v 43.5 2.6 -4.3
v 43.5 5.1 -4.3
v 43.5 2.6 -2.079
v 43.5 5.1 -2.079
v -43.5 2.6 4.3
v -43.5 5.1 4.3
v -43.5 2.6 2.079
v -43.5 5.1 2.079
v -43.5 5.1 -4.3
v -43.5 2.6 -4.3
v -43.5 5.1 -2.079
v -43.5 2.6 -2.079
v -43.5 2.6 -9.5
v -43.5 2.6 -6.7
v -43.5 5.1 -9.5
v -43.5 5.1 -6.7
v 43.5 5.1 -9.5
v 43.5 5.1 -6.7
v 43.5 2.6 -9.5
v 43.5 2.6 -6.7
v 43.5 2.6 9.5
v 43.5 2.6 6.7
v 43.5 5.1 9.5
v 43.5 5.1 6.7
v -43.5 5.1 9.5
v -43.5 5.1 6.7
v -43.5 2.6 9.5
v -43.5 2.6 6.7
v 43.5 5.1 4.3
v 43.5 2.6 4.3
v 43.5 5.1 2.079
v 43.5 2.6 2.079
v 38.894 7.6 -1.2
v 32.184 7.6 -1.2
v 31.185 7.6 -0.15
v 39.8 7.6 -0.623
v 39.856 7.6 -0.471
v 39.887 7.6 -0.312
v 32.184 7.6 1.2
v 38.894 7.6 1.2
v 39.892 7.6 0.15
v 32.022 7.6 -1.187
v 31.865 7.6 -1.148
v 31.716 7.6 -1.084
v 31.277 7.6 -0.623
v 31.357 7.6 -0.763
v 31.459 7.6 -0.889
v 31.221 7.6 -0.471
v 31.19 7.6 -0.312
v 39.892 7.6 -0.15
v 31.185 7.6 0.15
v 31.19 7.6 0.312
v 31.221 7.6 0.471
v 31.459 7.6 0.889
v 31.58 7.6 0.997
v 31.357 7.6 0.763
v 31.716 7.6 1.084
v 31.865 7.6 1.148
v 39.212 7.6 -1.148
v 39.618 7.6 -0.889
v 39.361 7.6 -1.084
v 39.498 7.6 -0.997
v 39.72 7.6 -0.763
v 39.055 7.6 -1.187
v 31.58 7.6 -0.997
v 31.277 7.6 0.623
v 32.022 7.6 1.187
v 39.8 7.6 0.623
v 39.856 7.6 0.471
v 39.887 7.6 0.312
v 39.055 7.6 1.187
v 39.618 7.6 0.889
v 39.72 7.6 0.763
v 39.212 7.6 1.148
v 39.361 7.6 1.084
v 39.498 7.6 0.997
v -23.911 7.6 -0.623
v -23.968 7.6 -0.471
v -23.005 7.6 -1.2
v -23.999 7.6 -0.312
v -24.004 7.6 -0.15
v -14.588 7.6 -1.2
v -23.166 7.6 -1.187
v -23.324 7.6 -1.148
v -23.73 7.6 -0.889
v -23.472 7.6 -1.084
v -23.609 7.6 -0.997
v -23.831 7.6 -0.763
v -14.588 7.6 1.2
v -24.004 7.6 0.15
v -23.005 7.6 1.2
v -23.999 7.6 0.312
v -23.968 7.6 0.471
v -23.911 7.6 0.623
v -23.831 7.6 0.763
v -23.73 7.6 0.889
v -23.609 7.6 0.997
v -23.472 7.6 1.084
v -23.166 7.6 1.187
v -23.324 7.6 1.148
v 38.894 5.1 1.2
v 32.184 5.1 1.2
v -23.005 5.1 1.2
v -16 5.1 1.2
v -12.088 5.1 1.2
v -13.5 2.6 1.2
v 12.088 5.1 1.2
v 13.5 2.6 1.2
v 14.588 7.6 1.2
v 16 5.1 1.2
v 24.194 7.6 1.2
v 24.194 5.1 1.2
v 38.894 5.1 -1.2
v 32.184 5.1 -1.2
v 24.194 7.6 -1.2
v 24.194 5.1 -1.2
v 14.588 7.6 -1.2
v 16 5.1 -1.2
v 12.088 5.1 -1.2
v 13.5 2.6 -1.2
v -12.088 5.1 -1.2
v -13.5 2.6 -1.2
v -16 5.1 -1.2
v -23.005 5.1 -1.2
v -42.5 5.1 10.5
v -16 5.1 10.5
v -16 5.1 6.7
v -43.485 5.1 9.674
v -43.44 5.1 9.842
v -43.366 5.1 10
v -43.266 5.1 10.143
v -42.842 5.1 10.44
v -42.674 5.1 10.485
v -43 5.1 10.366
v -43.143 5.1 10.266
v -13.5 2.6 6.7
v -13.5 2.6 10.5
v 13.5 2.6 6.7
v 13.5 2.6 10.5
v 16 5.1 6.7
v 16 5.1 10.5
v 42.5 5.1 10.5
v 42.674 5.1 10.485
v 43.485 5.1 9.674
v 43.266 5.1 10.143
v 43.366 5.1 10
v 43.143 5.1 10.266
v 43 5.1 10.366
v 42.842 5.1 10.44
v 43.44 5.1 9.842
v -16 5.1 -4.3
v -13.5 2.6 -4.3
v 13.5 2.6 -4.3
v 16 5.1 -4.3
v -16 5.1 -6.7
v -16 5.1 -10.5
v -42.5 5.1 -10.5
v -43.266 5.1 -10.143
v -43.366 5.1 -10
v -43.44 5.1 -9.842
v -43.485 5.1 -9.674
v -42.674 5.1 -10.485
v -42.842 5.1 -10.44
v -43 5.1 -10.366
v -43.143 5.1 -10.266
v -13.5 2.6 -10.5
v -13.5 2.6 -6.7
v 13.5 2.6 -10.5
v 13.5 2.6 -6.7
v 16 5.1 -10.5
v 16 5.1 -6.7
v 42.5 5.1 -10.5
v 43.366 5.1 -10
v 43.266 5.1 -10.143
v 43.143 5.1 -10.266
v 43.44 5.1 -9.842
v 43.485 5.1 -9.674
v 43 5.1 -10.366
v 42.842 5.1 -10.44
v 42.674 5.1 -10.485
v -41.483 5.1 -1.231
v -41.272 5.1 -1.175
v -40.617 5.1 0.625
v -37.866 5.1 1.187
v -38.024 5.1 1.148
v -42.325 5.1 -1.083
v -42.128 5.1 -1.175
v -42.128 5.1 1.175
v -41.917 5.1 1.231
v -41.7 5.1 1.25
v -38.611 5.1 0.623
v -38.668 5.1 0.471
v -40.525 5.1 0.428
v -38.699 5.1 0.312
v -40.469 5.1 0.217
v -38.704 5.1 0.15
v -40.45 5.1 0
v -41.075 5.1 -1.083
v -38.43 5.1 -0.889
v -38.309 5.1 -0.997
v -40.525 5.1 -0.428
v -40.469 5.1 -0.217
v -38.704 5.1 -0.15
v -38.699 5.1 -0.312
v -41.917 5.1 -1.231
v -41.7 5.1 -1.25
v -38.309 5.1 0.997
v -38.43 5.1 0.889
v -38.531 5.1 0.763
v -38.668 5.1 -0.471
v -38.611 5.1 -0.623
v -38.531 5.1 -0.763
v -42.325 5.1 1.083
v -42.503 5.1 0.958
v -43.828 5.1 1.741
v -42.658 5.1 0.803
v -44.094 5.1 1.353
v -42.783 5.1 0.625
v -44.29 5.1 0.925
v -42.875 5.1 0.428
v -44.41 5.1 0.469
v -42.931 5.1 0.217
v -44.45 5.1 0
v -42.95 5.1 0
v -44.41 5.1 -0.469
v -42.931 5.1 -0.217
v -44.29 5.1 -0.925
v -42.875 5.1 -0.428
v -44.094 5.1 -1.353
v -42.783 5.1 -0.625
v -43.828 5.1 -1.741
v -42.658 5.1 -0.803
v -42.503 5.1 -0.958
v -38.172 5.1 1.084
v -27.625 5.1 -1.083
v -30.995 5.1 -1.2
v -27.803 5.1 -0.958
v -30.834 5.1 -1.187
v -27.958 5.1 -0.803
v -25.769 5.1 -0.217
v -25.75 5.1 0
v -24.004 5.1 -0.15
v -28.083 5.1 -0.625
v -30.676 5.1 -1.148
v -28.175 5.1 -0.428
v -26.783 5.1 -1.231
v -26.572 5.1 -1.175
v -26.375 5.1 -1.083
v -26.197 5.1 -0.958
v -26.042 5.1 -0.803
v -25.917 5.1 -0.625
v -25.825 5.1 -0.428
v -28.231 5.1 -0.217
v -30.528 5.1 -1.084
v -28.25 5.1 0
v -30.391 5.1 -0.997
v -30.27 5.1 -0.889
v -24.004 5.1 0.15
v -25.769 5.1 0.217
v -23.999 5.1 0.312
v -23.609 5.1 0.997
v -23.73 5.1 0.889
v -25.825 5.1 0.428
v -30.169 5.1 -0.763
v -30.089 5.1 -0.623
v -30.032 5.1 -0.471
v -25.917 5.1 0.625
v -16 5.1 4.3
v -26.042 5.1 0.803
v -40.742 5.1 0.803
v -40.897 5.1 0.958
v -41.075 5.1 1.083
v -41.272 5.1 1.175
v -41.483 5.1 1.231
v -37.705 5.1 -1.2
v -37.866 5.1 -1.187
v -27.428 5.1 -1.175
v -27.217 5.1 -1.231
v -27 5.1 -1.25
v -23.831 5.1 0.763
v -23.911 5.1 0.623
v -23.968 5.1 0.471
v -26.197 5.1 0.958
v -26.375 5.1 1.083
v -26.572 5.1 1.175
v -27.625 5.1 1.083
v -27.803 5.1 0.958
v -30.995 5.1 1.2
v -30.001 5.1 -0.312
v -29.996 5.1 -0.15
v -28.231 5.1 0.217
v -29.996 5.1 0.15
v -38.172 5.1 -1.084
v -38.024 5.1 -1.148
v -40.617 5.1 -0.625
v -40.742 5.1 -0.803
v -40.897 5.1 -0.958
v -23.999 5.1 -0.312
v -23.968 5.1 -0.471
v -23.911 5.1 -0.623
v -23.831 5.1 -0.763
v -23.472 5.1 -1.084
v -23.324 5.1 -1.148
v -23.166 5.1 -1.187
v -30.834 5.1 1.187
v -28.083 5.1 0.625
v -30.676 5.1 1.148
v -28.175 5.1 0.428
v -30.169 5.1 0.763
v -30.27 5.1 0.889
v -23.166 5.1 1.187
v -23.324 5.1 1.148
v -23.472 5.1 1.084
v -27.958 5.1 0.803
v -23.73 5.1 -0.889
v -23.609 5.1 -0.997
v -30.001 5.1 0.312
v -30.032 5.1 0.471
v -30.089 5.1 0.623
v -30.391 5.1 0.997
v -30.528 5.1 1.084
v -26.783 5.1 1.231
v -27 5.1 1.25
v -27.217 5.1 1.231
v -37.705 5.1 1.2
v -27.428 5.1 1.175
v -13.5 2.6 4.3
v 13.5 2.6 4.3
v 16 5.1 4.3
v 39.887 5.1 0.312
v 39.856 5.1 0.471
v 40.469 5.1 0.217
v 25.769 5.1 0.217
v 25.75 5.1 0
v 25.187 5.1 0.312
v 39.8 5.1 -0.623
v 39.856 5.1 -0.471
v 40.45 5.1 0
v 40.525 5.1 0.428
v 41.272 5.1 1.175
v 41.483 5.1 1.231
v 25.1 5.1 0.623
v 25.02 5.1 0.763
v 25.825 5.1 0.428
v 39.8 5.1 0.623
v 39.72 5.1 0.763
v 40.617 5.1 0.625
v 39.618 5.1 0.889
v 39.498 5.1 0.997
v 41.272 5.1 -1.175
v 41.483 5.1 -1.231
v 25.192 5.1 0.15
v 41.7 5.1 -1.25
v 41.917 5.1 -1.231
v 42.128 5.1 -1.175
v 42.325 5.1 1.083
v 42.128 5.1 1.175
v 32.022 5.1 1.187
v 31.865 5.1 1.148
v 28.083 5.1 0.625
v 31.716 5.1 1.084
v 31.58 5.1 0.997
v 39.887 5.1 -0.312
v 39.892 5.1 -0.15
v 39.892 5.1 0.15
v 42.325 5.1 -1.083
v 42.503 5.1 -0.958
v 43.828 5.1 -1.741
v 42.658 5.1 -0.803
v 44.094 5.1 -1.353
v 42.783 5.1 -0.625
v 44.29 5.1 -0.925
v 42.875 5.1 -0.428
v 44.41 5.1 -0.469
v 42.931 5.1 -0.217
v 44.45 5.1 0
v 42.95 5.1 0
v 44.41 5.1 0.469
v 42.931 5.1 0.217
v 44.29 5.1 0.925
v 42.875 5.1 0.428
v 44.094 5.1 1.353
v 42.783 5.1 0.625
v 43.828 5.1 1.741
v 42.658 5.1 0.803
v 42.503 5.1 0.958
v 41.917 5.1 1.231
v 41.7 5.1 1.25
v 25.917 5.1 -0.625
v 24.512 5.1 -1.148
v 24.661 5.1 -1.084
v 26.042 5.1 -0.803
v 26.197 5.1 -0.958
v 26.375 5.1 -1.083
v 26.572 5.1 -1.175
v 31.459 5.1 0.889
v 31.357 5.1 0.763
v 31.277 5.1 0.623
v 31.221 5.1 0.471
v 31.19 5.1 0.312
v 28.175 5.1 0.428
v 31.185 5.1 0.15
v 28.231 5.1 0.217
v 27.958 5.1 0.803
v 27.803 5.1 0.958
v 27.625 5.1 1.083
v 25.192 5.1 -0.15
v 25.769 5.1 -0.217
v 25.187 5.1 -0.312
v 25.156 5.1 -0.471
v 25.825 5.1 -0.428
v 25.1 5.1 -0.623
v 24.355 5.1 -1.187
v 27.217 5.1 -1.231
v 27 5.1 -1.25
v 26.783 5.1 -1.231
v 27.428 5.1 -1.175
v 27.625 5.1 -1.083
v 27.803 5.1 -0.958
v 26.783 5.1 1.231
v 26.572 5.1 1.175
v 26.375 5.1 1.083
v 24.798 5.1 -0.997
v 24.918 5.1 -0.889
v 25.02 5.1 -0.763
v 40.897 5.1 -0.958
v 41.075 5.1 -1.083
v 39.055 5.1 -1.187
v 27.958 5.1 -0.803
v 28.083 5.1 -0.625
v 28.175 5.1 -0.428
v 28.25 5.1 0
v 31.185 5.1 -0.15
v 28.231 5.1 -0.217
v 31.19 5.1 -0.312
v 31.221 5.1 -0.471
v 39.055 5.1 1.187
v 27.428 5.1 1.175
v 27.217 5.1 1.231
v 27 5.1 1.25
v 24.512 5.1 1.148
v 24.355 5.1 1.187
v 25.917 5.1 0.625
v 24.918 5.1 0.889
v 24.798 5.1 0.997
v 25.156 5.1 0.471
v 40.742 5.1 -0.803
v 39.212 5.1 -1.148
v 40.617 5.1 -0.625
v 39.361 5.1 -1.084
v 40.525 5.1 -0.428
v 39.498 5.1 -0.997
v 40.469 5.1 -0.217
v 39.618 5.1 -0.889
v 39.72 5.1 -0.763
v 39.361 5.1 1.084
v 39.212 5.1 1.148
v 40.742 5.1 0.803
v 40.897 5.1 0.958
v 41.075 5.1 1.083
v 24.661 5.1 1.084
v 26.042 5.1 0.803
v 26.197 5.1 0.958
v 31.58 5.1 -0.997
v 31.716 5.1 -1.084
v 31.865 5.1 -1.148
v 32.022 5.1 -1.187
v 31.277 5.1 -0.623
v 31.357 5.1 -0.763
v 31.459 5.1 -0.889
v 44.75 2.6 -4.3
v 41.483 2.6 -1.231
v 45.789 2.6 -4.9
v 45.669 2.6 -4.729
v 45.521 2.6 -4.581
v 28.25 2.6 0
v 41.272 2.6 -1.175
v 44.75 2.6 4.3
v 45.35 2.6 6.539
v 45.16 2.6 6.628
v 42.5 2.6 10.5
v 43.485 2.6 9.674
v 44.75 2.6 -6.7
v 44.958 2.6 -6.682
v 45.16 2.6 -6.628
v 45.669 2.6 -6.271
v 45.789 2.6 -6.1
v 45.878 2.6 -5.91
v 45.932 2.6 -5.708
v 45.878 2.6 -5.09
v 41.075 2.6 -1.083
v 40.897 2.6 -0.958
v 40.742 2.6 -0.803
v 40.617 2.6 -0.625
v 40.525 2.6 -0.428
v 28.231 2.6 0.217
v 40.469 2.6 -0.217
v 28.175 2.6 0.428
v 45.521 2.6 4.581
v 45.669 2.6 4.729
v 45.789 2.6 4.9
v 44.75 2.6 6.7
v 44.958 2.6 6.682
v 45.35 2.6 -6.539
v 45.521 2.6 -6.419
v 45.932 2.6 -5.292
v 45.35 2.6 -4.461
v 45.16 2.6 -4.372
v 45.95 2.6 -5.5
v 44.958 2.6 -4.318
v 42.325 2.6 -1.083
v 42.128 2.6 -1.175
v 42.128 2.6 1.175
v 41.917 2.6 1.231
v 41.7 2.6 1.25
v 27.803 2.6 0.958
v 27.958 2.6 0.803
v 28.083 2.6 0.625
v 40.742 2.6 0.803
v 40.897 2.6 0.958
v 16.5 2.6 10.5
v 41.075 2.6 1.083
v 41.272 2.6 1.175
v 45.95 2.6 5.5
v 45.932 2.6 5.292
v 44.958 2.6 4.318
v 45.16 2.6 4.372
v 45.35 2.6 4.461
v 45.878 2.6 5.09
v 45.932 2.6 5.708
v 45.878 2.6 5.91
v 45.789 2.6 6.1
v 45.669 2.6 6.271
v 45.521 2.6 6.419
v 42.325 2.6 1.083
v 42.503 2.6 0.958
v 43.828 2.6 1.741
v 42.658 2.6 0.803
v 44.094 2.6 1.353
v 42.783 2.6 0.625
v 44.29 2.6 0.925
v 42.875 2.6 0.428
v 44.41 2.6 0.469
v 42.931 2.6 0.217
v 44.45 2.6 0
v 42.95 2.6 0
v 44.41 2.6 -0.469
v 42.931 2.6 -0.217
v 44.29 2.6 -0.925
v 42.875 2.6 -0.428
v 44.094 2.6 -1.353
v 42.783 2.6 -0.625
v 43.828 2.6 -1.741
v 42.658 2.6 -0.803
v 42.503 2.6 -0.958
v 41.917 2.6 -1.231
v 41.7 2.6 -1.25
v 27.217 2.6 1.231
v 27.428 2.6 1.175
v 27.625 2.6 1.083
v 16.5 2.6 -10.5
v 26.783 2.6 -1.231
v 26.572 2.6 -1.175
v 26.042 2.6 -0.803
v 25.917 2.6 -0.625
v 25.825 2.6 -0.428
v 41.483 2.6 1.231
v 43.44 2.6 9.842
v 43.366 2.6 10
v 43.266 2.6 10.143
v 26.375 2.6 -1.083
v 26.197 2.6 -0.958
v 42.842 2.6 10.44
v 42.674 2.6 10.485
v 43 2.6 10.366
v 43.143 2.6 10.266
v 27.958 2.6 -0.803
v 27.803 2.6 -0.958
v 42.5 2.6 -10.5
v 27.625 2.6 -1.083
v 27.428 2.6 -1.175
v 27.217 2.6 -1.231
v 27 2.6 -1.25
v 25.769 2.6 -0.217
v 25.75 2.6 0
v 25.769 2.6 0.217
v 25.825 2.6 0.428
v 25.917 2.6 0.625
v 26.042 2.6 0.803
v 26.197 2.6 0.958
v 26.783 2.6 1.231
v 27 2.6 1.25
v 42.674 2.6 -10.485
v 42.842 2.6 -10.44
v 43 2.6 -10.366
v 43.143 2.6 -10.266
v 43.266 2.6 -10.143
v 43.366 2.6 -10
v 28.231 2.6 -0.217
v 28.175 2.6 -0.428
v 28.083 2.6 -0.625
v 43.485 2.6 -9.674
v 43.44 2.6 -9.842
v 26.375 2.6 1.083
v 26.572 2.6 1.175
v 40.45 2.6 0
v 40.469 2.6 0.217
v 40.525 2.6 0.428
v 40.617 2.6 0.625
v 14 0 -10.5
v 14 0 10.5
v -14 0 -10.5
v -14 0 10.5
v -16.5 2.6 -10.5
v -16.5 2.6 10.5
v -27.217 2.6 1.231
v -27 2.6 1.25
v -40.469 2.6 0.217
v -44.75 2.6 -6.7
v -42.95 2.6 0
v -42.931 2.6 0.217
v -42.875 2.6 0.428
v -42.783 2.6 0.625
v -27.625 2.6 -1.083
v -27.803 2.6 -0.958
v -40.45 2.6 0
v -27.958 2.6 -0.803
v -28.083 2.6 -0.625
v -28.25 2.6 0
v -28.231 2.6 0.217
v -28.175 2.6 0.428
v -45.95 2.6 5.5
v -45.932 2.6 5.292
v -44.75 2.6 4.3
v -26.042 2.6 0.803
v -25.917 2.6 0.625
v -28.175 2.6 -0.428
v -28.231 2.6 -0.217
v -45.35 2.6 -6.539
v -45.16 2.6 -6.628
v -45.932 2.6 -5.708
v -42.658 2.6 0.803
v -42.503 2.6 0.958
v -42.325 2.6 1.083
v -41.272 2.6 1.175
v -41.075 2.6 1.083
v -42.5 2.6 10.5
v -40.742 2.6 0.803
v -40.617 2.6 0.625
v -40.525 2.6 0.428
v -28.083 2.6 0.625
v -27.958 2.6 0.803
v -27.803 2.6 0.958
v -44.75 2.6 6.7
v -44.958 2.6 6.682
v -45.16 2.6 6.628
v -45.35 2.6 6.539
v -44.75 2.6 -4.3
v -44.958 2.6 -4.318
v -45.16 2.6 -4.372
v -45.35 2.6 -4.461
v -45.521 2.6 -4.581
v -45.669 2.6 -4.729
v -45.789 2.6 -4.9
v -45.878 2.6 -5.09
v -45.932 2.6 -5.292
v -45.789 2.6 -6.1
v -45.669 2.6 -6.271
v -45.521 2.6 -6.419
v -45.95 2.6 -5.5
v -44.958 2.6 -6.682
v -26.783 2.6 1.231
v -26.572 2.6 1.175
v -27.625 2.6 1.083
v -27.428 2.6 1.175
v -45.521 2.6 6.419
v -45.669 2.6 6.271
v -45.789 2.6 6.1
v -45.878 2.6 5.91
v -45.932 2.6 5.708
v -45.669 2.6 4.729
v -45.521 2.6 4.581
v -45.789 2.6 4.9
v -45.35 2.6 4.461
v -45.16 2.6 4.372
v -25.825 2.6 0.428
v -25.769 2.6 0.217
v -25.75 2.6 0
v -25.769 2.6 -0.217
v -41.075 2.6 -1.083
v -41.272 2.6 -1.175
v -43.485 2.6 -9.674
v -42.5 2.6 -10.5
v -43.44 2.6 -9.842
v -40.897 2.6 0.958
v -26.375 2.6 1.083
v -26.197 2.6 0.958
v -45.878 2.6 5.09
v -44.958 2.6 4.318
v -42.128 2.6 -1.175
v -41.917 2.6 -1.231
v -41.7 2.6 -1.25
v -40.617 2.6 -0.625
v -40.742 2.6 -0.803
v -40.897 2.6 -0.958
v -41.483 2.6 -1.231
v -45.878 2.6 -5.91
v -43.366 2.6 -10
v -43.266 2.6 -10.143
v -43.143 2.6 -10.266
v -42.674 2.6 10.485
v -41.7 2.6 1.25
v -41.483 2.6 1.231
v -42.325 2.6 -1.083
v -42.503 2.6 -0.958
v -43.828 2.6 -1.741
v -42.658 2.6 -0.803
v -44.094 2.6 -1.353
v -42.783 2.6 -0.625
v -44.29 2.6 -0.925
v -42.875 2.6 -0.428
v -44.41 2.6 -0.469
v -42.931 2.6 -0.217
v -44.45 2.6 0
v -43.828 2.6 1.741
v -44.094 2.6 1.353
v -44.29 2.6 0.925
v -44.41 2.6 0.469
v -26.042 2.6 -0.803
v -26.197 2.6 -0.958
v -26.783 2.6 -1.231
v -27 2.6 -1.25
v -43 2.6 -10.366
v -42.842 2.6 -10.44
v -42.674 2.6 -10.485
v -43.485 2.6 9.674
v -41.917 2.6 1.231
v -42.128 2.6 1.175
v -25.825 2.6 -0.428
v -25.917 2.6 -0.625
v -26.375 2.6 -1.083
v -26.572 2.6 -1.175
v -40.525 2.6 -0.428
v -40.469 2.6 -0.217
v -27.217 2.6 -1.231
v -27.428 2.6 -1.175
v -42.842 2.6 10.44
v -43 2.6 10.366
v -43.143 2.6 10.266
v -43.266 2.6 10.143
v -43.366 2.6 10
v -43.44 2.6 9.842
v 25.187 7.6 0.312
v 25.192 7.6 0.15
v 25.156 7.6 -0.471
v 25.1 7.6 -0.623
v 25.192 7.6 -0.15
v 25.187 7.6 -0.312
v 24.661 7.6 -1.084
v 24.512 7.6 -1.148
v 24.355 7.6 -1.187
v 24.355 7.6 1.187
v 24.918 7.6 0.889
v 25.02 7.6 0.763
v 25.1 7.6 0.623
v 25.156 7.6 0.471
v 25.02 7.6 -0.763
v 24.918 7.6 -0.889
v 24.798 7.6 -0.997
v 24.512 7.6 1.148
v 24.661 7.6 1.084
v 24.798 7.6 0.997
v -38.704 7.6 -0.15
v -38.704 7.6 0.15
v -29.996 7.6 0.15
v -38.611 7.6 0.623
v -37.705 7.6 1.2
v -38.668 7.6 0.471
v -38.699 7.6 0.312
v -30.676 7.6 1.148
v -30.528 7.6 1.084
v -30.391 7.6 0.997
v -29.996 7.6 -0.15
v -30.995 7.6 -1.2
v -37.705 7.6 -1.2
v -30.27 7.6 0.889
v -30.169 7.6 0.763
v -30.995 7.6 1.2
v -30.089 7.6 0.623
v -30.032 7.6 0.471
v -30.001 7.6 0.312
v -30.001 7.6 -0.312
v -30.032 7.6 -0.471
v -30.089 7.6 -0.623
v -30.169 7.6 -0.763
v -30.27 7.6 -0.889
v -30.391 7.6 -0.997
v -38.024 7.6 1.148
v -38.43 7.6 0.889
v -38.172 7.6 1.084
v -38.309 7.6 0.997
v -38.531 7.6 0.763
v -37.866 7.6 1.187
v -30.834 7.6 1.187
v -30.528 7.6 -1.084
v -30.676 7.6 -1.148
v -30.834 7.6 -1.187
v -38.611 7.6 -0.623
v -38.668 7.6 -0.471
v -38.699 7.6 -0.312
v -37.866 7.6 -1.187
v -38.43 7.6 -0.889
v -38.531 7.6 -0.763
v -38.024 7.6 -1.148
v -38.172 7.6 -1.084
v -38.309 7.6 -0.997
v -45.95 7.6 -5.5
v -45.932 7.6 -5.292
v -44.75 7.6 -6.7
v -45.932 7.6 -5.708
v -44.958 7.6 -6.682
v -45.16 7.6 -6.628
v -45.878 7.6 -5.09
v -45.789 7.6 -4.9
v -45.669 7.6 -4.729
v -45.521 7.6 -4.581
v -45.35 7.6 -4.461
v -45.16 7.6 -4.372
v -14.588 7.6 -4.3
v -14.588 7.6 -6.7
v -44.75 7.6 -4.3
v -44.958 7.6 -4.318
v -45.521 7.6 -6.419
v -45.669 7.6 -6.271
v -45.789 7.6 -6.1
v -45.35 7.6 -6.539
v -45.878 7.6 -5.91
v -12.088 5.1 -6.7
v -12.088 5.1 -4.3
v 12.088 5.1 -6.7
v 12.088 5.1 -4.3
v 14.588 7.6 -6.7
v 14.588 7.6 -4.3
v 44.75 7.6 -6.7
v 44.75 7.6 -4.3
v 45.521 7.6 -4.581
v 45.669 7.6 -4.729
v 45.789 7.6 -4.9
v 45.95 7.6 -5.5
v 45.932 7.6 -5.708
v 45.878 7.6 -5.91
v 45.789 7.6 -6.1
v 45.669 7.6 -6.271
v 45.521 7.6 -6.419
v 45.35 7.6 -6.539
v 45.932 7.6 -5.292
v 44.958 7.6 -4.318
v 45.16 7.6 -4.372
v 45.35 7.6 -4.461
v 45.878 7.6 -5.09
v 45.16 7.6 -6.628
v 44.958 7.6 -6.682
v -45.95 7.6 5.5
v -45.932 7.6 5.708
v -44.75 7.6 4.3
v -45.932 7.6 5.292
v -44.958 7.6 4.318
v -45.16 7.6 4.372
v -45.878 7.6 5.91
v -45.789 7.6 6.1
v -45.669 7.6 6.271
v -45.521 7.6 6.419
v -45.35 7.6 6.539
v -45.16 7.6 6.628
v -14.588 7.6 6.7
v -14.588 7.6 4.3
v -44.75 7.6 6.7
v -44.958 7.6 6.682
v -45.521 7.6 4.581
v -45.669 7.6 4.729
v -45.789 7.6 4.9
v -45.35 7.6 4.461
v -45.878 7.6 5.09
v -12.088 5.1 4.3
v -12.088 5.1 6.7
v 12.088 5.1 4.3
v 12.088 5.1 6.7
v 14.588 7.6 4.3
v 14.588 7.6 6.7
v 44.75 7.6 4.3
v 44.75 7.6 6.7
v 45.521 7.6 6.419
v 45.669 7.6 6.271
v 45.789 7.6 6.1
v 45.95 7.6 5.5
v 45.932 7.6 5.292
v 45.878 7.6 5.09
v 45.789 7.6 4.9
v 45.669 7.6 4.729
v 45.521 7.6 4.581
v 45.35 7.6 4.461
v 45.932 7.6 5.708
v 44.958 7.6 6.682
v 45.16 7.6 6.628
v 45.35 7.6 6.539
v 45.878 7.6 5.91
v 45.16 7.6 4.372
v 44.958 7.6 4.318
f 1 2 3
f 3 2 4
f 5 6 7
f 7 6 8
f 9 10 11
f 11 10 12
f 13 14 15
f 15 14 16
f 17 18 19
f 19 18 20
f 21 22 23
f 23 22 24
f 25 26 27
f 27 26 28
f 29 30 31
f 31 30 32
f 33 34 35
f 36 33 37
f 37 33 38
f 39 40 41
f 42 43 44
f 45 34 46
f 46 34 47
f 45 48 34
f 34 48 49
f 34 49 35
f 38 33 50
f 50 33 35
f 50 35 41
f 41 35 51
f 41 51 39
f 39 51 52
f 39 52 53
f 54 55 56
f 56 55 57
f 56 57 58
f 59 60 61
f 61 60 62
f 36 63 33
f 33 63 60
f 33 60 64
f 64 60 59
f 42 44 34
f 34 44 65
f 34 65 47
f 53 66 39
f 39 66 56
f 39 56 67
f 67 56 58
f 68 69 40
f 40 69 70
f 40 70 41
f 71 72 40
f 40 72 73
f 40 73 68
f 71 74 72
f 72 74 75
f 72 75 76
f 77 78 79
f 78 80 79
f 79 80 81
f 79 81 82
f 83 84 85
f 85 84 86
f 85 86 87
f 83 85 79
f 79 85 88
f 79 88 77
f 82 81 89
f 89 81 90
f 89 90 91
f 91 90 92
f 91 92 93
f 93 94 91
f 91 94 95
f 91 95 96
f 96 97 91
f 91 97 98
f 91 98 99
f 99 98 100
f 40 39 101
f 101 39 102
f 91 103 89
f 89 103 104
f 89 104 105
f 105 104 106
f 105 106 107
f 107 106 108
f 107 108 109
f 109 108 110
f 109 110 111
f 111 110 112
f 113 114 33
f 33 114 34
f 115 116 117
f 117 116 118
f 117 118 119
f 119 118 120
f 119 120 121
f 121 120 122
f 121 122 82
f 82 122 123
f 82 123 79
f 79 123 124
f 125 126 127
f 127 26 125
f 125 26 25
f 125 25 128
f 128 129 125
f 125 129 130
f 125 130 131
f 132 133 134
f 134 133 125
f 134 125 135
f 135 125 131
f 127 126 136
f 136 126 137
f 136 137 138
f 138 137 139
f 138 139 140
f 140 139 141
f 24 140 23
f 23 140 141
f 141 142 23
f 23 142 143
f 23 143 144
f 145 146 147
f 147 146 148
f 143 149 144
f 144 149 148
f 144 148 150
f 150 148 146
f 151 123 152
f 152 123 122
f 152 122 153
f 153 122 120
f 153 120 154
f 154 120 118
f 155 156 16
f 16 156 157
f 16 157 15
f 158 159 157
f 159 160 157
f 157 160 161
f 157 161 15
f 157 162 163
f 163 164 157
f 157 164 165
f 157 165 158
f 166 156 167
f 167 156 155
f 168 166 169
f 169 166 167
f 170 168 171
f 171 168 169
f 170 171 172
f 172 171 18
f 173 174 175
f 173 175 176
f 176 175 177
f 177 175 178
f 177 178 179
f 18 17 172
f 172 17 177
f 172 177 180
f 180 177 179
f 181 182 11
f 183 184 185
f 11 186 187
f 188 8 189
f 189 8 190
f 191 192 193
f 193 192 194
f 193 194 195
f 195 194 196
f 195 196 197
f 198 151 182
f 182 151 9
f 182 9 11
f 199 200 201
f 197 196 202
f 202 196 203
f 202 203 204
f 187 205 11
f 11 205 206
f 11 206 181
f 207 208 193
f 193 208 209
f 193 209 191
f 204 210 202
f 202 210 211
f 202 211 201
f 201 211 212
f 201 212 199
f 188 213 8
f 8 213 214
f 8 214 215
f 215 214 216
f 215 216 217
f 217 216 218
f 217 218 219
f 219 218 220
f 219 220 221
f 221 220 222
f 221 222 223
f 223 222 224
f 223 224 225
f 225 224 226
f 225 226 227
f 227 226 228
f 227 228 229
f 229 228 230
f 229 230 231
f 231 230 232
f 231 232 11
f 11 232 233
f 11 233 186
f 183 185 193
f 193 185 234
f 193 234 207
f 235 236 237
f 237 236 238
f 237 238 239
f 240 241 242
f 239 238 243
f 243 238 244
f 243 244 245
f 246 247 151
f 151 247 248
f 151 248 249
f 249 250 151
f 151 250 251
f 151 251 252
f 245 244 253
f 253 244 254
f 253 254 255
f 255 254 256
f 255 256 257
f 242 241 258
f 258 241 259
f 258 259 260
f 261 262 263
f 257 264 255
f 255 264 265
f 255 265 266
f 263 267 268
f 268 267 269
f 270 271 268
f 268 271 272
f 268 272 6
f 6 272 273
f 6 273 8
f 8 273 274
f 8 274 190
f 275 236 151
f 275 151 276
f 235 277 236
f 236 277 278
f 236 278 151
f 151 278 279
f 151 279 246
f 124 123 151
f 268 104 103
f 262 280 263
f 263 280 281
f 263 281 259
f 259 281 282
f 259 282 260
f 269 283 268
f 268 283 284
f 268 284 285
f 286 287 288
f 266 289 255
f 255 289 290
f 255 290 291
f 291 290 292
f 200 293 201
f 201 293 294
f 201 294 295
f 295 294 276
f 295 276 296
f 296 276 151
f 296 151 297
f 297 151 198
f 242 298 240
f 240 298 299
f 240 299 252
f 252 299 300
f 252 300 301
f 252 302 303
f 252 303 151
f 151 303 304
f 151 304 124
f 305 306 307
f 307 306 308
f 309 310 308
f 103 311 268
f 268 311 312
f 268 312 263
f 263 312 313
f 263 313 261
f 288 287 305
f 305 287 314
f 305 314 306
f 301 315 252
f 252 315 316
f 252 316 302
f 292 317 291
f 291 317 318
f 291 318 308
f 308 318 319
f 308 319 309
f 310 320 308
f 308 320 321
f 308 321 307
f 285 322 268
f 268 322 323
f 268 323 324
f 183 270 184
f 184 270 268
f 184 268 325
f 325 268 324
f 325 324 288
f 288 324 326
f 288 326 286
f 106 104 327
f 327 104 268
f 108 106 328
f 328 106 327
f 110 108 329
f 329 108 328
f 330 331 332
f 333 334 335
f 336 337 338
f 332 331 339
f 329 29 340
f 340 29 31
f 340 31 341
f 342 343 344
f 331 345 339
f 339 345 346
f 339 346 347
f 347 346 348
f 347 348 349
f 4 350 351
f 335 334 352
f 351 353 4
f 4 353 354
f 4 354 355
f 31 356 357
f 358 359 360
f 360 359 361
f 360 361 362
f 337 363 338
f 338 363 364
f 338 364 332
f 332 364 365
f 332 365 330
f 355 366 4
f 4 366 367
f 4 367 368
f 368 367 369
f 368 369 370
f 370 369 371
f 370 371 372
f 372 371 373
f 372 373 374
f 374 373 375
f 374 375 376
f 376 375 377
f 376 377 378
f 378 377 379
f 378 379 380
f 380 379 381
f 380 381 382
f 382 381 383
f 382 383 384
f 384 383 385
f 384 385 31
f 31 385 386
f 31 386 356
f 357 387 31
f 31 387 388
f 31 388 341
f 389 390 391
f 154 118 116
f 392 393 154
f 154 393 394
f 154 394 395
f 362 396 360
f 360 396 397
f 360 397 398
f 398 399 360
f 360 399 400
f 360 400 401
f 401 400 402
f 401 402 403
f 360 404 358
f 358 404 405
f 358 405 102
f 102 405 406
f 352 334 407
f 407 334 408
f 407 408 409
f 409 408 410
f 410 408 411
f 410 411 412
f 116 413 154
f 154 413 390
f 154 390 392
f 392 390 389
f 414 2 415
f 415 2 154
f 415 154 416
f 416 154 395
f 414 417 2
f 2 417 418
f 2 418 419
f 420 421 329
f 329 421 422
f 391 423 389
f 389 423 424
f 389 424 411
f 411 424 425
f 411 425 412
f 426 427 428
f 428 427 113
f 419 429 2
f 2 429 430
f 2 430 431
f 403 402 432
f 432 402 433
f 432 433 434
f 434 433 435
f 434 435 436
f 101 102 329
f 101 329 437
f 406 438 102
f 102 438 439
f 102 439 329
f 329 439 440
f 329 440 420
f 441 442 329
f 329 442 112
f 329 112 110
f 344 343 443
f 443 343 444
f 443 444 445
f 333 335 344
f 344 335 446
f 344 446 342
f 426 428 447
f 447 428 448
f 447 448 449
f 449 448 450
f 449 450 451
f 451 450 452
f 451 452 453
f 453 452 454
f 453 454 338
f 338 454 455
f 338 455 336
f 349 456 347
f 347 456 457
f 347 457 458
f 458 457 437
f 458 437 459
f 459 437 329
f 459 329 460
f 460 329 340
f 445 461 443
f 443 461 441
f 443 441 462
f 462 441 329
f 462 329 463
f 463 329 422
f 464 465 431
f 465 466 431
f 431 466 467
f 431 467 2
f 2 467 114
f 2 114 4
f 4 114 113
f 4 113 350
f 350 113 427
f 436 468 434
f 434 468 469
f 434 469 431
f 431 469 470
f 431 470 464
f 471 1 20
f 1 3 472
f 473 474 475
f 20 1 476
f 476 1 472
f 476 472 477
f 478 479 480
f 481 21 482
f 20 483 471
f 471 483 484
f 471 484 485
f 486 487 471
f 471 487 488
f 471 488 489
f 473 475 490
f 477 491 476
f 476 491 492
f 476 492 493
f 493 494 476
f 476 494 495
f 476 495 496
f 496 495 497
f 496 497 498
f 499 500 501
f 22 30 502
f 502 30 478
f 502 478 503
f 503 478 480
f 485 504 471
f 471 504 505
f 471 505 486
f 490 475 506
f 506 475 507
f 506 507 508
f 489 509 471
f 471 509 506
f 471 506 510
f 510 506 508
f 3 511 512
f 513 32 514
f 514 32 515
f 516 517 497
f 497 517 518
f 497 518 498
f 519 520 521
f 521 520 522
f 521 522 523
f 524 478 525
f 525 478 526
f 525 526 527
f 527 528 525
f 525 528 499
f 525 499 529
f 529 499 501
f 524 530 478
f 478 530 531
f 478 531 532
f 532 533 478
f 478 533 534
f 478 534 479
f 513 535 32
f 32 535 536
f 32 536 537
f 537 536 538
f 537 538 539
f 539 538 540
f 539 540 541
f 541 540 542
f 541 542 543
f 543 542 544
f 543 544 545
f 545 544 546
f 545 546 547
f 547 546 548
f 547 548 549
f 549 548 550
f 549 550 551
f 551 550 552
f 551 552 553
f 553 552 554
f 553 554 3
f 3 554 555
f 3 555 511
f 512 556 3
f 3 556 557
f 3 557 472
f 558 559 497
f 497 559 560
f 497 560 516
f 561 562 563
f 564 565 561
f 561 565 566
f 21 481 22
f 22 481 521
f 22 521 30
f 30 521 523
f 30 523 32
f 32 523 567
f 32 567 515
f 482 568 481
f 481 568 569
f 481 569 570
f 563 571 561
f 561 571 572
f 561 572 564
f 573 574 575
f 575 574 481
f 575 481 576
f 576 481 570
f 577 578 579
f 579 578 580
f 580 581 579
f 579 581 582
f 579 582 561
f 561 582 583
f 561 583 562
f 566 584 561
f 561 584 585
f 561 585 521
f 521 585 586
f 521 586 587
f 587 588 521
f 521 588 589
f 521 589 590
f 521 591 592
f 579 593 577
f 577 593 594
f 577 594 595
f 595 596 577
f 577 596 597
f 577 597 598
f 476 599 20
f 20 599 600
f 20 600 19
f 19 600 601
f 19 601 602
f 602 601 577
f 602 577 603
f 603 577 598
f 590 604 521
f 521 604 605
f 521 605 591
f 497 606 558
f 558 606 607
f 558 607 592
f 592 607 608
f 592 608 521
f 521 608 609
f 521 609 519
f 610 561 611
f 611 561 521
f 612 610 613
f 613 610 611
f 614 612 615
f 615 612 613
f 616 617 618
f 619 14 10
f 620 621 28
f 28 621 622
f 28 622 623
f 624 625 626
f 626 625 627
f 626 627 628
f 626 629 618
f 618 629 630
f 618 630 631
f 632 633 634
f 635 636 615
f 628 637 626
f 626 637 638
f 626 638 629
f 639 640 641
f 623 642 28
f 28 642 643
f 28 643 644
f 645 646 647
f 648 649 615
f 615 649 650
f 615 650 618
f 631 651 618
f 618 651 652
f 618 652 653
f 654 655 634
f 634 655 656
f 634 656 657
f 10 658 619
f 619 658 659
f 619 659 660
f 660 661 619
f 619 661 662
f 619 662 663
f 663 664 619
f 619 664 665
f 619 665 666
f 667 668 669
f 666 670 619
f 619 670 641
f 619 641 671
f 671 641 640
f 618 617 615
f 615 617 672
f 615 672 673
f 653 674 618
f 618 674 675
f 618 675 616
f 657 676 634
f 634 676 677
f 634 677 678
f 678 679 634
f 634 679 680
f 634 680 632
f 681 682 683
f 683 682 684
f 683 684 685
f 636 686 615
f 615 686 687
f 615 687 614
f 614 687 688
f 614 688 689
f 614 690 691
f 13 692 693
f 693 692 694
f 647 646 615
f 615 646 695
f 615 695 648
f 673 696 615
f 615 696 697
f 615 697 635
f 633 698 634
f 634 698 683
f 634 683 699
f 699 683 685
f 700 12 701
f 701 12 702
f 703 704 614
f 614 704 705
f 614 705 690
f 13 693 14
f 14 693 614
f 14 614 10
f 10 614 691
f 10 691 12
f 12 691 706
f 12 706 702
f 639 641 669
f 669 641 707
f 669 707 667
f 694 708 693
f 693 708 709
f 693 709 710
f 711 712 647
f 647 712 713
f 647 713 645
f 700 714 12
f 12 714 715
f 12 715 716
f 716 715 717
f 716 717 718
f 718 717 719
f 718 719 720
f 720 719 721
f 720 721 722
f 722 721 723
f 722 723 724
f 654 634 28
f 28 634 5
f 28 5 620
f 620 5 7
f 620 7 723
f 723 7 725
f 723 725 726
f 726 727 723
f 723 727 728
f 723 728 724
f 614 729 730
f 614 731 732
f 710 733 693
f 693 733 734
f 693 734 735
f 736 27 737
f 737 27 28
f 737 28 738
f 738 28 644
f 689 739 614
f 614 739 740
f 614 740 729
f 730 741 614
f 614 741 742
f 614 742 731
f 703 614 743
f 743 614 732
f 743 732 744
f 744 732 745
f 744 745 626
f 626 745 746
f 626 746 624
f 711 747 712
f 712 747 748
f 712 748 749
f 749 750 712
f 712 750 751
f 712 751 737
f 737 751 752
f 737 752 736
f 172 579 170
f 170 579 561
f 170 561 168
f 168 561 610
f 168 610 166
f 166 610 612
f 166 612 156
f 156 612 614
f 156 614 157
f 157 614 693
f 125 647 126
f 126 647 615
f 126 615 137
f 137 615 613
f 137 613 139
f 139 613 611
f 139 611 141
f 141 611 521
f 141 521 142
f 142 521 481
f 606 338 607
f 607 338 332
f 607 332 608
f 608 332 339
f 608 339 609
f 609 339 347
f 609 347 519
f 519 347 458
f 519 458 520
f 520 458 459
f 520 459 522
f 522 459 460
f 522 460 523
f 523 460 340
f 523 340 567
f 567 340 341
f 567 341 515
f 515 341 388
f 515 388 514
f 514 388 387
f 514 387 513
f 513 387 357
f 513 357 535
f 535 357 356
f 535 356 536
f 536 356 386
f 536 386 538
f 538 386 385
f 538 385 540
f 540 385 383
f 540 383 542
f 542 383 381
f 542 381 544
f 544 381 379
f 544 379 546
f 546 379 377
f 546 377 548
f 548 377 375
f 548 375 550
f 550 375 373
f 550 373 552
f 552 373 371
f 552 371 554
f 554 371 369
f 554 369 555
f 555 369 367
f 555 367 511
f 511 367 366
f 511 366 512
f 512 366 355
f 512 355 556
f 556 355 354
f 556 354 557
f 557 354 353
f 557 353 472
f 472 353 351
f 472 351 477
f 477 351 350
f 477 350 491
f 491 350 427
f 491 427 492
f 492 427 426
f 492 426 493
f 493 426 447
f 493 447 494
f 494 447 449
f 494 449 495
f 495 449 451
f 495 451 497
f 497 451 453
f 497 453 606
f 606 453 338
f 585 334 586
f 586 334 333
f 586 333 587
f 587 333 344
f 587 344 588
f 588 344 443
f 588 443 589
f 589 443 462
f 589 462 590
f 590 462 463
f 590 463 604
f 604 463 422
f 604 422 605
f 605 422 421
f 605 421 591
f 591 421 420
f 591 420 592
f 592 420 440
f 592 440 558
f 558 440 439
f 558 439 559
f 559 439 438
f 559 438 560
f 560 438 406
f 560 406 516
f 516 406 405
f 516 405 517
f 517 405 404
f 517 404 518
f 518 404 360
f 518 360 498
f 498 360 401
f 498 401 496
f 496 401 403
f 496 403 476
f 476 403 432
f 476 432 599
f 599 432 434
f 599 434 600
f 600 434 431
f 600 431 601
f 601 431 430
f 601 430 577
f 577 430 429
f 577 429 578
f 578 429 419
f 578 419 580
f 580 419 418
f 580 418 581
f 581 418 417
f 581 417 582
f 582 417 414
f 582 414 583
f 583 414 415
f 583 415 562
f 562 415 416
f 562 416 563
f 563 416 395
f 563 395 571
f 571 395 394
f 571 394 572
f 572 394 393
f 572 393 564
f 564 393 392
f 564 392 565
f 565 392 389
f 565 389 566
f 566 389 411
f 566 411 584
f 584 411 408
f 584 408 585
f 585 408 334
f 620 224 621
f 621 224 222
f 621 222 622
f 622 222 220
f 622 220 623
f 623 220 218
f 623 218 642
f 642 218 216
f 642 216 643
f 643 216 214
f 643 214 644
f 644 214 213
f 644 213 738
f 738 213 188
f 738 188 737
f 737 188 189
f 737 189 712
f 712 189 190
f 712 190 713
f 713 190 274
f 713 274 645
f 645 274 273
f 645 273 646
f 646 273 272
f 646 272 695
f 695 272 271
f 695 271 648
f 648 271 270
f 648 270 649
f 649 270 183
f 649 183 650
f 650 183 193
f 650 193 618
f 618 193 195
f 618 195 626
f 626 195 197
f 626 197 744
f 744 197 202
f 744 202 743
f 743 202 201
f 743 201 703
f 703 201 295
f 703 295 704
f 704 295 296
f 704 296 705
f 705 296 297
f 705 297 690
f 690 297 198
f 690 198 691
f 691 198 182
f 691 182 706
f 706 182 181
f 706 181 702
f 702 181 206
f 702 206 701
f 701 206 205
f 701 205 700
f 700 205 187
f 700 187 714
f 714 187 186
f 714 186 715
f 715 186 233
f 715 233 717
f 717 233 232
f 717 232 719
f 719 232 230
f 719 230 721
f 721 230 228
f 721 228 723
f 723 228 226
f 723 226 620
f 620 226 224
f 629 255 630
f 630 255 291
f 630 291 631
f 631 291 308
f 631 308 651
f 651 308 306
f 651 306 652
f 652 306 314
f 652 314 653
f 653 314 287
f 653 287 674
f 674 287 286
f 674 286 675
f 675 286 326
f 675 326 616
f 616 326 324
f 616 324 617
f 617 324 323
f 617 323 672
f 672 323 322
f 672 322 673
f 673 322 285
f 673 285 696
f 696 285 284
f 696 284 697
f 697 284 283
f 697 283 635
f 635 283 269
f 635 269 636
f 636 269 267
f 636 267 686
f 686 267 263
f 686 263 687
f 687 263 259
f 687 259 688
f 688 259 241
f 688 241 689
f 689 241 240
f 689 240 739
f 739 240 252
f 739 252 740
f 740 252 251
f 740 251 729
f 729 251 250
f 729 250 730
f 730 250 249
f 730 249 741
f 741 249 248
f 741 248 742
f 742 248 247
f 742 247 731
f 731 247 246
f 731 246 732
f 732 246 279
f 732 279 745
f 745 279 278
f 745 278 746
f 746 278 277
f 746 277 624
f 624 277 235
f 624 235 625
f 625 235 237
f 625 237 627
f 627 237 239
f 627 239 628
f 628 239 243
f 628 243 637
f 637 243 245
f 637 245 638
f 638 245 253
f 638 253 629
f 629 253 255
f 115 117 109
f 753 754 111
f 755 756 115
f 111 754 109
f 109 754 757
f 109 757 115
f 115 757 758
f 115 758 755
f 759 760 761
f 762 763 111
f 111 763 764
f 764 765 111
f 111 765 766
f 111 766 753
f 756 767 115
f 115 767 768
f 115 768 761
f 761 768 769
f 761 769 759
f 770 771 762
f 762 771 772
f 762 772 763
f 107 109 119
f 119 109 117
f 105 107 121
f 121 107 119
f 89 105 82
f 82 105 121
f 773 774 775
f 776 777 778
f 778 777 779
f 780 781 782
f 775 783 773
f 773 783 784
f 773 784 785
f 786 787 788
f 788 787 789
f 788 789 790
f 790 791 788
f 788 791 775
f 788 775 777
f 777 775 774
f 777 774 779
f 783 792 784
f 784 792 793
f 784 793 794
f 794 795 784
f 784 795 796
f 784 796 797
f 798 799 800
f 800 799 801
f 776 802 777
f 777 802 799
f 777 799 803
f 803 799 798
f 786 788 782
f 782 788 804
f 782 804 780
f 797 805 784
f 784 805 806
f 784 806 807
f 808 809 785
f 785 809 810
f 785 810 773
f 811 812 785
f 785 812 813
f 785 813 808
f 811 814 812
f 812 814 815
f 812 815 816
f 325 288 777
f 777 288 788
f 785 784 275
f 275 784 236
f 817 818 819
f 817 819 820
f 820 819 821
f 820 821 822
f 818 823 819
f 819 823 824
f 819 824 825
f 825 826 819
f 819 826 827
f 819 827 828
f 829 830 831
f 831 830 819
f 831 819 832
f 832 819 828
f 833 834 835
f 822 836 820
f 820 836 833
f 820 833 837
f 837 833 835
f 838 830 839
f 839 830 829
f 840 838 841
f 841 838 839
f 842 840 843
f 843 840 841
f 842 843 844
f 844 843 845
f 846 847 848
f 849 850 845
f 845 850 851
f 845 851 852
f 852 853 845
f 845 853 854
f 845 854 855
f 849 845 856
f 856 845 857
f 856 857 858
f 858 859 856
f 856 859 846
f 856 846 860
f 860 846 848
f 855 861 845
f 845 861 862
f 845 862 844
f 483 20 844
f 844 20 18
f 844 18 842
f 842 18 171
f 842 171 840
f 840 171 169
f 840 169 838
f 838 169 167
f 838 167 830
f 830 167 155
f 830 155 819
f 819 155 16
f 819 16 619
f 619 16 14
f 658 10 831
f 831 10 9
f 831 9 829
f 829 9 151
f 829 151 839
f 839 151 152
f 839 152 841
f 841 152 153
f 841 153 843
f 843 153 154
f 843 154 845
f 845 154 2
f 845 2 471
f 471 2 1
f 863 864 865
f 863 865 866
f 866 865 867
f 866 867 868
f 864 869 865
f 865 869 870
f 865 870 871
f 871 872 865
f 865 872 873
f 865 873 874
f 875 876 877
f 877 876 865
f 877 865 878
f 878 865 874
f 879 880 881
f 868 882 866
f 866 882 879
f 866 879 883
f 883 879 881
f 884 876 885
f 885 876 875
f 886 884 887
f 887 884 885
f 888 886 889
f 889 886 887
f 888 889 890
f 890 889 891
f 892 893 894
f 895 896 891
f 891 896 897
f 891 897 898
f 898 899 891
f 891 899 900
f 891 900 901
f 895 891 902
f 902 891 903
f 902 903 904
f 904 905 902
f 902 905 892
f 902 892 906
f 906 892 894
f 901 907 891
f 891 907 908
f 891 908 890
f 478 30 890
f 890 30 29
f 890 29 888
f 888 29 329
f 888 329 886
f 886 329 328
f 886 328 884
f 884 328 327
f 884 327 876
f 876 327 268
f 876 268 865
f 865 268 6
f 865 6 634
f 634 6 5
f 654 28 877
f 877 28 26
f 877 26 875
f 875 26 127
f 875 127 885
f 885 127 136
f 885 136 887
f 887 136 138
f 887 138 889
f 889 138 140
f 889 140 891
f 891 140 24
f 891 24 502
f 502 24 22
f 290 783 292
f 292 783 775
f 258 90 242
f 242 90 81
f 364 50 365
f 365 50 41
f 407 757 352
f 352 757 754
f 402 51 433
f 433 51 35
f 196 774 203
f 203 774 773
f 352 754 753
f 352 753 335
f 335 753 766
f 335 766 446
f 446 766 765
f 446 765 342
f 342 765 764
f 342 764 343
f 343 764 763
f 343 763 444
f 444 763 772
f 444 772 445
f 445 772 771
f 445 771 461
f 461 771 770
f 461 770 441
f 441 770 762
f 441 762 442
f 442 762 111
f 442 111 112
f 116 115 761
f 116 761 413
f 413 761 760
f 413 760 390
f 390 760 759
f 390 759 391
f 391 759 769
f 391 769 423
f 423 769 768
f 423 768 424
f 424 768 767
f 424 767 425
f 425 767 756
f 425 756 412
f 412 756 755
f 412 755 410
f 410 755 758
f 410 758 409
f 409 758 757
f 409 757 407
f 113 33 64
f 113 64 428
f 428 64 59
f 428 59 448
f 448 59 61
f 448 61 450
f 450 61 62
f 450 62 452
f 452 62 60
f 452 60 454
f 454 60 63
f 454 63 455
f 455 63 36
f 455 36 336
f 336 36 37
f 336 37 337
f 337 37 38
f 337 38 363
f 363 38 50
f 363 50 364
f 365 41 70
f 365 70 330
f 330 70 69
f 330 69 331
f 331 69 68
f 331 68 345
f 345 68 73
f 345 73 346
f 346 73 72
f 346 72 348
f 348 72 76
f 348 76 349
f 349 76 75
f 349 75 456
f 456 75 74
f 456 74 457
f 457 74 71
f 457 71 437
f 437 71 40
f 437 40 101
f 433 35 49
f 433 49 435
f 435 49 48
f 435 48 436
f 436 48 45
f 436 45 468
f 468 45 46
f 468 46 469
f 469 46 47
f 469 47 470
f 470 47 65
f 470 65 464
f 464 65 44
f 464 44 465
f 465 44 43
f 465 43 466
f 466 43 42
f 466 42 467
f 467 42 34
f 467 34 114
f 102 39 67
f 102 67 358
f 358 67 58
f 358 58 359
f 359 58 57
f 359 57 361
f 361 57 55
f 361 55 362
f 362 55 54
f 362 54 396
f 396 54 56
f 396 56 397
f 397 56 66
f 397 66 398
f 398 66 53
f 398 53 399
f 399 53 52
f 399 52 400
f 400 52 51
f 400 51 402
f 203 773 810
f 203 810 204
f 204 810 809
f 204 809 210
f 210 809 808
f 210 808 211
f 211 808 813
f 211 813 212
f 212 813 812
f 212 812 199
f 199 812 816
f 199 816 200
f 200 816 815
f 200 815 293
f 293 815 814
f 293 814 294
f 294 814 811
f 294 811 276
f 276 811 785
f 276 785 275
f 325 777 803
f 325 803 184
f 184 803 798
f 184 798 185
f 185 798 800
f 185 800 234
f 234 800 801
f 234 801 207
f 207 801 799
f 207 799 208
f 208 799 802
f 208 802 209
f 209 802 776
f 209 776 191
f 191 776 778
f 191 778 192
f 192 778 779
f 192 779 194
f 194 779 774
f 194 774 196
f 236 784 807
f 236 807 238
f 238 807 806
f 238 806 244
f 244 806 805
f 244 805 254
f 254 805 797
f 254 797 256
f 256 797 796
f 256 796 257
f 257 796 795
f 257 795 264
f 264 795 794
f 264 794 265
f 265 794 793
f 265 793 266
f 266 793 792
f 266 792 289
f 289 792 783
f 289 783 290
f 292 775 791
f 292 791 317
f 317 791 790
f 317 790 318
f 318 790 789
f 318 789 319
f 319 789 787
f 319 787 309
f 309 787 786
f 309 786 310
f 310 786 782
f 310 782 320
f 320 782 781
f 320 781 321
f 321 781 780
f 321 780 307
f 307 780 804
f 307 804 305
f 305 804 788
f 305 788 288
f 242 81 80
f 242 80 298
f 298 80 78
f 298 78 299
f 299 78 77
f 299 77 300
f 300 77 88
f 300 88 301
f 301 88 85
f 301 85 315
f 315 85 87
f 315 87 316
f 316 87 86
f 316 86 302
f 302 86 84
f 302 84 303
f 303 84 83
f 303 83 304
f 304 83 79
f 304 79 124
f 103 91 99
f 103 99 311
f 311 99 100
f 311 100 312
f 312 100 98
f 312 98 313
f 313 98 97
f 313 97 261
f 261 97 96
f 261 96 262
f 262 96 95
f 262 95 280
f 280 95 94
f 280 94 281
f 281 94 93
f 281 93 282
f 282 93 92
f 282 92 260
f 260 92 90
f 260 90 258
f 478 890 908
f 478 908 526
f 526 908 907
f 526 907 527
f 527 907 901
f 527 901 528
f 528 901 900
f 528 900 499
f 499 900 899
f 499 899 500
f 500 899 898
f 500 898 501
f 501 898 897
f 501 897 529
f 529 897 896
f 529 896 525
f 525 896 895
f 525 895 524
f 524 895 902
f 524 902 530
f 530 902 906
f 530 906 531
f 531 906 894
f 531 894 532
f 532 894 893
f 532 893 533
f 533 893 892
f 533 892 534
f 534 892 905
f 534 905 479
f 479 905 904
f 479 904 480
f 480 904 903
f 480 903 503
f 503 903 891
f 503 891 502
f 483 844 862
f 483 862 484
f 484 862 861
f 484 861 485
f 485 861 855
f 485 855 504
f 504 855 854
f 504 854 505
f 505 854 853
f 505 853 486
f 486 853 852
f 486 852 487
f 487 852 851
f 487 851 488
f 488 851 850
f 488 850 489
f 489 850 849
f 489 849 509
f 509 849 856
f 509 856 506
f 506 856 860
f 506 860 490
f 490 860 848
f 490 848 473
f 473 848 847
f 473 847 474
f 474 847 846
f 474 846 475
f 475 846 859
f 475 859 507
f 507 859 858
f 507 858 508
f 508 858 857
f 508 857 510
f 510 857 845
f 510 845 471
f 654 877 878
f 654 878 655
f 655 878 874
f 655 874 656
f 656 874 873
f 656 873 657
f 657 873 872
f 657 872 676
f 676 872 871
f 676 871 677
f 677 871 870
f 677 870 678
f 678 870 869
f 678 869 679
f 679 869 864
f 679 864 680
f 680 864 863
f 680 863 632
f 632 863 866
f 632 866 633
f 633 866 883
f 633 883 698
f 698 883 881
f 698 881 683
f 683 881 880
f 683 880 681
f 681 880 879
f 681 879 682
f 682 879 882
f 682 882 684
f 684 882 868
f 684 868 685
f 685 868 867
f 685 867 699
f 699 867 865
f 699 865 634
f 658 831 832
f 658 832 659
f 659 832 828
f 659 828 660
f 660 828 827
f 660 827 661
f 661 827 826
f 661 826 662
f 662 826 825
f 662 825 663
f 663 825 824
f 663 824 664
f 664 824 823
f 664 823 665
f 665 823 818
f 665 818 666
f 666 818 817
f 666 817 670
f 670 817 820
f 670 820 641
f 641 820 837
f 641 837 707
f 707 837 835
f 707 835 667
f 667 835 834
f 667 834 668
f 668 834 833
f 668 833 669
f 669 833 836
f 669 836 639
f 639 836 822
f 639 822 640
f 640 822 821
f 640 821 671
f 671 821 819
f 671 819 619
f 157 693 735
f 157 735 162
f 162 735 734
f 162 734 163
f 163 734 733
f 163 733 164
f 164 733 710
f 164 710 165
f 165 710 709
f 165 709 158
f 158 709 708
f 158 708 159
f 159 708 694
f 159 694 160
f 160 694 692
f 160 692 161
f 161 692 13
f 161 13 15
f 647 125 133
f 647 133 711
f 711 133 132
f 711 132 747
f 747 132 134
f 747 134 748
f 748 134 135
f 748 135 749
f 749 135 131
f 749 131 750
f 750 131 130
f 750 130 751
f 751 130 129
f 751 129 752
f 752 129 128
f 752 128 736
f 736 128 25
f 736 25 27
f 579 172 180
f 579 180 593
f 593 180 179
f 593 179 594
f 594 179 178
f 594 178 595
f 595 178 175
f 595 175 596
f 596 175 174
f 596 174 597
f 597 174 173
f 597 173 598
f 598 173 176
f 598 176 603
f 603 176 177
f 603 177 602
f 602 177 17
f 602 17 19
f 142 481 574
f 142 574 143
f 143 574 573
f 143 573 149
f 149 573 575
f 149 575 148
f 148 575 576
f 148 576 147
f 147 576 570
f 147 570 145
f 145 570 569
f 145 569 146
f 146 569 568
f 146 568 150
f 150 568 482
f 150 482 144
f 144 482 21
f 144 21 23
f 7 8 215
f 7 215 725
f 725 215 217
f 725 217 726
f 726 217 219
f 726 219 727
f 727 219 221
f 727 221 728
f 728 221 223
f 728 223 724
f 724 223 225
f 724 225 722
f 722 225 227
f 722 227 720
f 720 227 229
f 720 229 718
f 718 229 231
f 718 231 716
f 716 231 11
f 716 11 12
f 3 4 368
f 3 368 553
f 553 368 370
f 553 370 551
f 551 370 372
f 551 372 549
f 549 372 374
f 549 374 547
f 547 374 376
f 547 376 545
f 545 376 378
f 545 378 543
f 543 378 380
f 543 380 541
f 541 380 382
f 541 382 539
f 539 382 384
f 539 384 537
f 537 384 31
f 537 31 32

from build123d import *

# Parameters (mm, degrees)
BOSS_EXTRUDE1_DEPTH  = 10.5
SKETCH2_R            = 1.25
CUT_EXTRUDE1_DEPTH   = 46.038983115
BOSS_EXTRUDE19_DEPTH = 1.2
LPATTERN1_START      = -6.7
LPATTERN1_DEPTH      = 2.4
LPATTERN1_START_2    = 4.3
LPATTERN1_2_DEPTH    = 2.4
SKETCH5_R            = 3
CUT_EXTRUDE2_DEPTH   = 2.5
FILLET1_R            = 1
BOSS_EXTRUDE20_DEPTH = 5
FILLET2_R            = 1
BOSS_EXTRUDE21_DEPTH = 2.5


# Read off the part's stored shape, not the designer's step: LPattern1
with BuildPart() as part:
    # Sketch1 → Boss-Extrude1 (new, symmetric)
    with BuildSketch(Plane.XY):
        Polygon((-43.5, 2.6), (-16.5, 2.6), (-14, 0), (14, 0), (16.5, 2.6), (43.5, 2.6), (43.5, 5.1), (16, 5.1), (13.5, 2.6), (-13.5, 2.6), (-16, 5.1), (-43.5, 5.1), align=None)
    extrude(amount=BOSS_EXTRUDE1_DEPTH, both=True)

    # Sketch2 → Cut-Extrude1 (cut, through all)
    with BuildSketch(Plane(origin=(0, 5.1, 0), x_dir=(1, 0, 0), z_dir=(0, 1, 0))):
        with Locations(Location((27, 0, 0), (0, 0, 180))):
            Circle(SKETCH2_R)
        with Locations(Location((41.7, 0, 0), (0, 0, 180))):
            Circle(SKETCH2_R)
    cut_extrude1 = extrude(amount=-CUT_EXTRUDE1_DEPTH, mode=Mode.SUBTRACT)

    # Mirror1: Cut-Extrude1 across plane
    add(cut_extrude1.mirror(Plane(origin=(0, 0, 0), x_dir=(0, 0, 1), z_dir=(1, 0, 0))), mode=Mode.SUBTRACT)

    # Sketch4 → Boss-Extrude19 (add, symmetric)
    with BuildSketch(Plane.XY):
        Polygon((-43.5, 7.6), (-14.587766262, 7.6), (-12.087766262, 5.1), (12.087766262, 5.1), (14.587766262, 7.6), (43.5, 7.6), (43.5, 5.1), (16, 5.1), (13.5, 2.6), (-13.5, 2.6), (-16, 5.1), (-43.5, 5.1), align=None)
    boss_extrude19 = extrude(amount=BOSS_EXTRUDE19_DEPTH, both=True)

    # Mirror2: Boss-Extrude19 across plane
    add(boss_extrude19.mirror(Plane.XY))

    # LPattern1 outline → LPattern1 (add)
    with BuildSketch(Plane.XY.offset(LPATTERN1_START)):
        Polygon((14.587766262, 7.6), (12.087766262, 5.1), (-12.087766262, 5.1), (-14.587766262, 7.6), (-43.5, 7.6), (-43.5, 5.1), (-16, 5.1), (-13.5, 2.6), (13.5, 2.6), (16, 5.1), (43.5, 5.1), (43.5, 7.6), align=None)
    extrude(amount=LPATTERN1_DEPTH)

    # LPattern1 2 outline → LPattern1 2 (add)
    with BuildSketch(Plane.XY.offset(LPATTERN1_START_2)):
        Polygon((14.587766262, 7.6), (12.087766262, 5.1), (-12.087766262, 5.1), (-14.587766262, 7.6), (-43.5, 7.6), (-43.5, 5.1), (-16, 5.1), (-13.5, 2.6), (13.5, 2.6), (16, 5.1), (43.5, 5.1), (43.5, 7.6), align=None)
    extrude(amount=LPATTERN1_2_DEPTH)

    # Sketch5 → Cut-Extrude2 (cut)
    with BuildSketch(Plane(origin=(0, 7.6, 0), x_dir=(1, 0, 0), z_dir=(0, 1, 0))):
        with Locations((-41.7, 0)):
            Circle(SKETCH5_R)
        with Locations((-27, 0)):
            Circle(SKETCH5_R)
        with Locations((42.888677457, 0)):
            Circle(SKETCH5_R)
        with Locations((28.188677457, 0)):
            Circle(SKETCH5_R)
    extrude(amount=-CUT_EXTRUDE2_DEPTH, mode=Mode.SUBTRACT)

    # Fillet1
    fillet1_edges = [part.edges().sort_by_distance(p)[0] for p in [
        (-29.749545417, 6.35, -1.2),
        (-24.250454583, 6.35, -1.2),
        (40.13913204, 6.35, -1.2),
        (25.43913204, 6.35, -1.2),
        (30.938222874, 6.35, -1.2),
        (-38.950454583, 6.35, -1.2),
        (-38.950454583, 6.35, 1.2),
        (30.938222874, 6.35, 1.2),
        (25.43913204, 6.35, 1.2),
        (40.13913204, 6.35, 1.2),
        (-24.250454583, 6.35, 1.2),
        (-29.749545417, 6.35, 1.2),
    ]]
    fillet(fillet1_edges, radius=FILLET1_R)

    # Sketch6 → Boss-Extrude20 (add)
    with BuildSketch(Plane(origin=(0, 7.6, 0), x_dir=(1, 0, 0), z_dir=(0, 1, 0))):
        with BuildLine():
            Line((43.5, -4.3), (43.5, -6.7))
            Line((43.5, -6.7), (44.75, -6.7))
            ThreePointArc((44.75, -6.7), (45.95, -5.5), (44.75, -4.3))
            Line((44.75, -4.3), (43.5, -4.3))
        make_face()
        with BuildLine():
            Line((43.5, 6.7), (43.5, 4.3))
            Line((43.5, 4.3), (44.75, 4.3))
            ThreePointArc((44.75, 4.3), (45.95, 5.5), (44.75, 6.7))
            Line((44.75, 6.7), (43.5, 6.7))
        make_face()
        with BuildLine():
            Line((-43.5, 6.7), (-44.75, 6.7))
            ThreePointArc((-44.75, 6.7), (-45.95, 5.5), (-44.75, 4.3))
            Line((-44.75, 4.3), (-43.5, 4.3))
            Line((-43.5, 4.3), (-43.5, 6.7))
        make_face()
        with BuildLine():
            Line((-43.5, -4.3), (-44.75, -4.3))
            ThreePointArc((-44.75, -4.3), (-45.95, -5.5), (-44.75, -6.7))
            Line((-44.75, -6.7), (-43.5, -6.7))
            Line((-43.5, -6.7), (-43.5, -4.3))
        make_face()
    extrude(amount=-BOSS_EXTRUDE20_DEPTH)

    # Fillet2
    fillet2_edges = [part.edges().sort_by_distance(p)[0] for p in [
        (43.5, 3.85, 10.5),
        (-43.5, 3.85, 10.5),
        (43.5, 3.85, -10.5),
        (-43.5, 3.85, -10.5),
    ]]
    fillet(fillet2_edges, radius=FILLET2_R)

    # Sketch7 → Boss-Extrude21 (add)
    with BuildSketch(Plane(origin=(0, 5.1, 0), x_dir=(1, 0, 0), z_dir=(0, 1, 0))):
        with BuildLine():
            Line((43.5, -2.079062289), (43.5, 2.079062289))
            ThreePointArc((43.5, 2.079062289), (44.45, 0), (43.5, -2.079062289))
        make_face()
        with BuildLine():
            Line((-43.5, -2.079062289), (-43.5, 2.079062289))
            ThreePointArc((-43.5, 2.079062289), (-44.45, 0), (-43.5, -2.079062289))
        make_face()
    extrude(amount=-BOSS_EXTRUDE21_DEPTH)


solid = part.part
